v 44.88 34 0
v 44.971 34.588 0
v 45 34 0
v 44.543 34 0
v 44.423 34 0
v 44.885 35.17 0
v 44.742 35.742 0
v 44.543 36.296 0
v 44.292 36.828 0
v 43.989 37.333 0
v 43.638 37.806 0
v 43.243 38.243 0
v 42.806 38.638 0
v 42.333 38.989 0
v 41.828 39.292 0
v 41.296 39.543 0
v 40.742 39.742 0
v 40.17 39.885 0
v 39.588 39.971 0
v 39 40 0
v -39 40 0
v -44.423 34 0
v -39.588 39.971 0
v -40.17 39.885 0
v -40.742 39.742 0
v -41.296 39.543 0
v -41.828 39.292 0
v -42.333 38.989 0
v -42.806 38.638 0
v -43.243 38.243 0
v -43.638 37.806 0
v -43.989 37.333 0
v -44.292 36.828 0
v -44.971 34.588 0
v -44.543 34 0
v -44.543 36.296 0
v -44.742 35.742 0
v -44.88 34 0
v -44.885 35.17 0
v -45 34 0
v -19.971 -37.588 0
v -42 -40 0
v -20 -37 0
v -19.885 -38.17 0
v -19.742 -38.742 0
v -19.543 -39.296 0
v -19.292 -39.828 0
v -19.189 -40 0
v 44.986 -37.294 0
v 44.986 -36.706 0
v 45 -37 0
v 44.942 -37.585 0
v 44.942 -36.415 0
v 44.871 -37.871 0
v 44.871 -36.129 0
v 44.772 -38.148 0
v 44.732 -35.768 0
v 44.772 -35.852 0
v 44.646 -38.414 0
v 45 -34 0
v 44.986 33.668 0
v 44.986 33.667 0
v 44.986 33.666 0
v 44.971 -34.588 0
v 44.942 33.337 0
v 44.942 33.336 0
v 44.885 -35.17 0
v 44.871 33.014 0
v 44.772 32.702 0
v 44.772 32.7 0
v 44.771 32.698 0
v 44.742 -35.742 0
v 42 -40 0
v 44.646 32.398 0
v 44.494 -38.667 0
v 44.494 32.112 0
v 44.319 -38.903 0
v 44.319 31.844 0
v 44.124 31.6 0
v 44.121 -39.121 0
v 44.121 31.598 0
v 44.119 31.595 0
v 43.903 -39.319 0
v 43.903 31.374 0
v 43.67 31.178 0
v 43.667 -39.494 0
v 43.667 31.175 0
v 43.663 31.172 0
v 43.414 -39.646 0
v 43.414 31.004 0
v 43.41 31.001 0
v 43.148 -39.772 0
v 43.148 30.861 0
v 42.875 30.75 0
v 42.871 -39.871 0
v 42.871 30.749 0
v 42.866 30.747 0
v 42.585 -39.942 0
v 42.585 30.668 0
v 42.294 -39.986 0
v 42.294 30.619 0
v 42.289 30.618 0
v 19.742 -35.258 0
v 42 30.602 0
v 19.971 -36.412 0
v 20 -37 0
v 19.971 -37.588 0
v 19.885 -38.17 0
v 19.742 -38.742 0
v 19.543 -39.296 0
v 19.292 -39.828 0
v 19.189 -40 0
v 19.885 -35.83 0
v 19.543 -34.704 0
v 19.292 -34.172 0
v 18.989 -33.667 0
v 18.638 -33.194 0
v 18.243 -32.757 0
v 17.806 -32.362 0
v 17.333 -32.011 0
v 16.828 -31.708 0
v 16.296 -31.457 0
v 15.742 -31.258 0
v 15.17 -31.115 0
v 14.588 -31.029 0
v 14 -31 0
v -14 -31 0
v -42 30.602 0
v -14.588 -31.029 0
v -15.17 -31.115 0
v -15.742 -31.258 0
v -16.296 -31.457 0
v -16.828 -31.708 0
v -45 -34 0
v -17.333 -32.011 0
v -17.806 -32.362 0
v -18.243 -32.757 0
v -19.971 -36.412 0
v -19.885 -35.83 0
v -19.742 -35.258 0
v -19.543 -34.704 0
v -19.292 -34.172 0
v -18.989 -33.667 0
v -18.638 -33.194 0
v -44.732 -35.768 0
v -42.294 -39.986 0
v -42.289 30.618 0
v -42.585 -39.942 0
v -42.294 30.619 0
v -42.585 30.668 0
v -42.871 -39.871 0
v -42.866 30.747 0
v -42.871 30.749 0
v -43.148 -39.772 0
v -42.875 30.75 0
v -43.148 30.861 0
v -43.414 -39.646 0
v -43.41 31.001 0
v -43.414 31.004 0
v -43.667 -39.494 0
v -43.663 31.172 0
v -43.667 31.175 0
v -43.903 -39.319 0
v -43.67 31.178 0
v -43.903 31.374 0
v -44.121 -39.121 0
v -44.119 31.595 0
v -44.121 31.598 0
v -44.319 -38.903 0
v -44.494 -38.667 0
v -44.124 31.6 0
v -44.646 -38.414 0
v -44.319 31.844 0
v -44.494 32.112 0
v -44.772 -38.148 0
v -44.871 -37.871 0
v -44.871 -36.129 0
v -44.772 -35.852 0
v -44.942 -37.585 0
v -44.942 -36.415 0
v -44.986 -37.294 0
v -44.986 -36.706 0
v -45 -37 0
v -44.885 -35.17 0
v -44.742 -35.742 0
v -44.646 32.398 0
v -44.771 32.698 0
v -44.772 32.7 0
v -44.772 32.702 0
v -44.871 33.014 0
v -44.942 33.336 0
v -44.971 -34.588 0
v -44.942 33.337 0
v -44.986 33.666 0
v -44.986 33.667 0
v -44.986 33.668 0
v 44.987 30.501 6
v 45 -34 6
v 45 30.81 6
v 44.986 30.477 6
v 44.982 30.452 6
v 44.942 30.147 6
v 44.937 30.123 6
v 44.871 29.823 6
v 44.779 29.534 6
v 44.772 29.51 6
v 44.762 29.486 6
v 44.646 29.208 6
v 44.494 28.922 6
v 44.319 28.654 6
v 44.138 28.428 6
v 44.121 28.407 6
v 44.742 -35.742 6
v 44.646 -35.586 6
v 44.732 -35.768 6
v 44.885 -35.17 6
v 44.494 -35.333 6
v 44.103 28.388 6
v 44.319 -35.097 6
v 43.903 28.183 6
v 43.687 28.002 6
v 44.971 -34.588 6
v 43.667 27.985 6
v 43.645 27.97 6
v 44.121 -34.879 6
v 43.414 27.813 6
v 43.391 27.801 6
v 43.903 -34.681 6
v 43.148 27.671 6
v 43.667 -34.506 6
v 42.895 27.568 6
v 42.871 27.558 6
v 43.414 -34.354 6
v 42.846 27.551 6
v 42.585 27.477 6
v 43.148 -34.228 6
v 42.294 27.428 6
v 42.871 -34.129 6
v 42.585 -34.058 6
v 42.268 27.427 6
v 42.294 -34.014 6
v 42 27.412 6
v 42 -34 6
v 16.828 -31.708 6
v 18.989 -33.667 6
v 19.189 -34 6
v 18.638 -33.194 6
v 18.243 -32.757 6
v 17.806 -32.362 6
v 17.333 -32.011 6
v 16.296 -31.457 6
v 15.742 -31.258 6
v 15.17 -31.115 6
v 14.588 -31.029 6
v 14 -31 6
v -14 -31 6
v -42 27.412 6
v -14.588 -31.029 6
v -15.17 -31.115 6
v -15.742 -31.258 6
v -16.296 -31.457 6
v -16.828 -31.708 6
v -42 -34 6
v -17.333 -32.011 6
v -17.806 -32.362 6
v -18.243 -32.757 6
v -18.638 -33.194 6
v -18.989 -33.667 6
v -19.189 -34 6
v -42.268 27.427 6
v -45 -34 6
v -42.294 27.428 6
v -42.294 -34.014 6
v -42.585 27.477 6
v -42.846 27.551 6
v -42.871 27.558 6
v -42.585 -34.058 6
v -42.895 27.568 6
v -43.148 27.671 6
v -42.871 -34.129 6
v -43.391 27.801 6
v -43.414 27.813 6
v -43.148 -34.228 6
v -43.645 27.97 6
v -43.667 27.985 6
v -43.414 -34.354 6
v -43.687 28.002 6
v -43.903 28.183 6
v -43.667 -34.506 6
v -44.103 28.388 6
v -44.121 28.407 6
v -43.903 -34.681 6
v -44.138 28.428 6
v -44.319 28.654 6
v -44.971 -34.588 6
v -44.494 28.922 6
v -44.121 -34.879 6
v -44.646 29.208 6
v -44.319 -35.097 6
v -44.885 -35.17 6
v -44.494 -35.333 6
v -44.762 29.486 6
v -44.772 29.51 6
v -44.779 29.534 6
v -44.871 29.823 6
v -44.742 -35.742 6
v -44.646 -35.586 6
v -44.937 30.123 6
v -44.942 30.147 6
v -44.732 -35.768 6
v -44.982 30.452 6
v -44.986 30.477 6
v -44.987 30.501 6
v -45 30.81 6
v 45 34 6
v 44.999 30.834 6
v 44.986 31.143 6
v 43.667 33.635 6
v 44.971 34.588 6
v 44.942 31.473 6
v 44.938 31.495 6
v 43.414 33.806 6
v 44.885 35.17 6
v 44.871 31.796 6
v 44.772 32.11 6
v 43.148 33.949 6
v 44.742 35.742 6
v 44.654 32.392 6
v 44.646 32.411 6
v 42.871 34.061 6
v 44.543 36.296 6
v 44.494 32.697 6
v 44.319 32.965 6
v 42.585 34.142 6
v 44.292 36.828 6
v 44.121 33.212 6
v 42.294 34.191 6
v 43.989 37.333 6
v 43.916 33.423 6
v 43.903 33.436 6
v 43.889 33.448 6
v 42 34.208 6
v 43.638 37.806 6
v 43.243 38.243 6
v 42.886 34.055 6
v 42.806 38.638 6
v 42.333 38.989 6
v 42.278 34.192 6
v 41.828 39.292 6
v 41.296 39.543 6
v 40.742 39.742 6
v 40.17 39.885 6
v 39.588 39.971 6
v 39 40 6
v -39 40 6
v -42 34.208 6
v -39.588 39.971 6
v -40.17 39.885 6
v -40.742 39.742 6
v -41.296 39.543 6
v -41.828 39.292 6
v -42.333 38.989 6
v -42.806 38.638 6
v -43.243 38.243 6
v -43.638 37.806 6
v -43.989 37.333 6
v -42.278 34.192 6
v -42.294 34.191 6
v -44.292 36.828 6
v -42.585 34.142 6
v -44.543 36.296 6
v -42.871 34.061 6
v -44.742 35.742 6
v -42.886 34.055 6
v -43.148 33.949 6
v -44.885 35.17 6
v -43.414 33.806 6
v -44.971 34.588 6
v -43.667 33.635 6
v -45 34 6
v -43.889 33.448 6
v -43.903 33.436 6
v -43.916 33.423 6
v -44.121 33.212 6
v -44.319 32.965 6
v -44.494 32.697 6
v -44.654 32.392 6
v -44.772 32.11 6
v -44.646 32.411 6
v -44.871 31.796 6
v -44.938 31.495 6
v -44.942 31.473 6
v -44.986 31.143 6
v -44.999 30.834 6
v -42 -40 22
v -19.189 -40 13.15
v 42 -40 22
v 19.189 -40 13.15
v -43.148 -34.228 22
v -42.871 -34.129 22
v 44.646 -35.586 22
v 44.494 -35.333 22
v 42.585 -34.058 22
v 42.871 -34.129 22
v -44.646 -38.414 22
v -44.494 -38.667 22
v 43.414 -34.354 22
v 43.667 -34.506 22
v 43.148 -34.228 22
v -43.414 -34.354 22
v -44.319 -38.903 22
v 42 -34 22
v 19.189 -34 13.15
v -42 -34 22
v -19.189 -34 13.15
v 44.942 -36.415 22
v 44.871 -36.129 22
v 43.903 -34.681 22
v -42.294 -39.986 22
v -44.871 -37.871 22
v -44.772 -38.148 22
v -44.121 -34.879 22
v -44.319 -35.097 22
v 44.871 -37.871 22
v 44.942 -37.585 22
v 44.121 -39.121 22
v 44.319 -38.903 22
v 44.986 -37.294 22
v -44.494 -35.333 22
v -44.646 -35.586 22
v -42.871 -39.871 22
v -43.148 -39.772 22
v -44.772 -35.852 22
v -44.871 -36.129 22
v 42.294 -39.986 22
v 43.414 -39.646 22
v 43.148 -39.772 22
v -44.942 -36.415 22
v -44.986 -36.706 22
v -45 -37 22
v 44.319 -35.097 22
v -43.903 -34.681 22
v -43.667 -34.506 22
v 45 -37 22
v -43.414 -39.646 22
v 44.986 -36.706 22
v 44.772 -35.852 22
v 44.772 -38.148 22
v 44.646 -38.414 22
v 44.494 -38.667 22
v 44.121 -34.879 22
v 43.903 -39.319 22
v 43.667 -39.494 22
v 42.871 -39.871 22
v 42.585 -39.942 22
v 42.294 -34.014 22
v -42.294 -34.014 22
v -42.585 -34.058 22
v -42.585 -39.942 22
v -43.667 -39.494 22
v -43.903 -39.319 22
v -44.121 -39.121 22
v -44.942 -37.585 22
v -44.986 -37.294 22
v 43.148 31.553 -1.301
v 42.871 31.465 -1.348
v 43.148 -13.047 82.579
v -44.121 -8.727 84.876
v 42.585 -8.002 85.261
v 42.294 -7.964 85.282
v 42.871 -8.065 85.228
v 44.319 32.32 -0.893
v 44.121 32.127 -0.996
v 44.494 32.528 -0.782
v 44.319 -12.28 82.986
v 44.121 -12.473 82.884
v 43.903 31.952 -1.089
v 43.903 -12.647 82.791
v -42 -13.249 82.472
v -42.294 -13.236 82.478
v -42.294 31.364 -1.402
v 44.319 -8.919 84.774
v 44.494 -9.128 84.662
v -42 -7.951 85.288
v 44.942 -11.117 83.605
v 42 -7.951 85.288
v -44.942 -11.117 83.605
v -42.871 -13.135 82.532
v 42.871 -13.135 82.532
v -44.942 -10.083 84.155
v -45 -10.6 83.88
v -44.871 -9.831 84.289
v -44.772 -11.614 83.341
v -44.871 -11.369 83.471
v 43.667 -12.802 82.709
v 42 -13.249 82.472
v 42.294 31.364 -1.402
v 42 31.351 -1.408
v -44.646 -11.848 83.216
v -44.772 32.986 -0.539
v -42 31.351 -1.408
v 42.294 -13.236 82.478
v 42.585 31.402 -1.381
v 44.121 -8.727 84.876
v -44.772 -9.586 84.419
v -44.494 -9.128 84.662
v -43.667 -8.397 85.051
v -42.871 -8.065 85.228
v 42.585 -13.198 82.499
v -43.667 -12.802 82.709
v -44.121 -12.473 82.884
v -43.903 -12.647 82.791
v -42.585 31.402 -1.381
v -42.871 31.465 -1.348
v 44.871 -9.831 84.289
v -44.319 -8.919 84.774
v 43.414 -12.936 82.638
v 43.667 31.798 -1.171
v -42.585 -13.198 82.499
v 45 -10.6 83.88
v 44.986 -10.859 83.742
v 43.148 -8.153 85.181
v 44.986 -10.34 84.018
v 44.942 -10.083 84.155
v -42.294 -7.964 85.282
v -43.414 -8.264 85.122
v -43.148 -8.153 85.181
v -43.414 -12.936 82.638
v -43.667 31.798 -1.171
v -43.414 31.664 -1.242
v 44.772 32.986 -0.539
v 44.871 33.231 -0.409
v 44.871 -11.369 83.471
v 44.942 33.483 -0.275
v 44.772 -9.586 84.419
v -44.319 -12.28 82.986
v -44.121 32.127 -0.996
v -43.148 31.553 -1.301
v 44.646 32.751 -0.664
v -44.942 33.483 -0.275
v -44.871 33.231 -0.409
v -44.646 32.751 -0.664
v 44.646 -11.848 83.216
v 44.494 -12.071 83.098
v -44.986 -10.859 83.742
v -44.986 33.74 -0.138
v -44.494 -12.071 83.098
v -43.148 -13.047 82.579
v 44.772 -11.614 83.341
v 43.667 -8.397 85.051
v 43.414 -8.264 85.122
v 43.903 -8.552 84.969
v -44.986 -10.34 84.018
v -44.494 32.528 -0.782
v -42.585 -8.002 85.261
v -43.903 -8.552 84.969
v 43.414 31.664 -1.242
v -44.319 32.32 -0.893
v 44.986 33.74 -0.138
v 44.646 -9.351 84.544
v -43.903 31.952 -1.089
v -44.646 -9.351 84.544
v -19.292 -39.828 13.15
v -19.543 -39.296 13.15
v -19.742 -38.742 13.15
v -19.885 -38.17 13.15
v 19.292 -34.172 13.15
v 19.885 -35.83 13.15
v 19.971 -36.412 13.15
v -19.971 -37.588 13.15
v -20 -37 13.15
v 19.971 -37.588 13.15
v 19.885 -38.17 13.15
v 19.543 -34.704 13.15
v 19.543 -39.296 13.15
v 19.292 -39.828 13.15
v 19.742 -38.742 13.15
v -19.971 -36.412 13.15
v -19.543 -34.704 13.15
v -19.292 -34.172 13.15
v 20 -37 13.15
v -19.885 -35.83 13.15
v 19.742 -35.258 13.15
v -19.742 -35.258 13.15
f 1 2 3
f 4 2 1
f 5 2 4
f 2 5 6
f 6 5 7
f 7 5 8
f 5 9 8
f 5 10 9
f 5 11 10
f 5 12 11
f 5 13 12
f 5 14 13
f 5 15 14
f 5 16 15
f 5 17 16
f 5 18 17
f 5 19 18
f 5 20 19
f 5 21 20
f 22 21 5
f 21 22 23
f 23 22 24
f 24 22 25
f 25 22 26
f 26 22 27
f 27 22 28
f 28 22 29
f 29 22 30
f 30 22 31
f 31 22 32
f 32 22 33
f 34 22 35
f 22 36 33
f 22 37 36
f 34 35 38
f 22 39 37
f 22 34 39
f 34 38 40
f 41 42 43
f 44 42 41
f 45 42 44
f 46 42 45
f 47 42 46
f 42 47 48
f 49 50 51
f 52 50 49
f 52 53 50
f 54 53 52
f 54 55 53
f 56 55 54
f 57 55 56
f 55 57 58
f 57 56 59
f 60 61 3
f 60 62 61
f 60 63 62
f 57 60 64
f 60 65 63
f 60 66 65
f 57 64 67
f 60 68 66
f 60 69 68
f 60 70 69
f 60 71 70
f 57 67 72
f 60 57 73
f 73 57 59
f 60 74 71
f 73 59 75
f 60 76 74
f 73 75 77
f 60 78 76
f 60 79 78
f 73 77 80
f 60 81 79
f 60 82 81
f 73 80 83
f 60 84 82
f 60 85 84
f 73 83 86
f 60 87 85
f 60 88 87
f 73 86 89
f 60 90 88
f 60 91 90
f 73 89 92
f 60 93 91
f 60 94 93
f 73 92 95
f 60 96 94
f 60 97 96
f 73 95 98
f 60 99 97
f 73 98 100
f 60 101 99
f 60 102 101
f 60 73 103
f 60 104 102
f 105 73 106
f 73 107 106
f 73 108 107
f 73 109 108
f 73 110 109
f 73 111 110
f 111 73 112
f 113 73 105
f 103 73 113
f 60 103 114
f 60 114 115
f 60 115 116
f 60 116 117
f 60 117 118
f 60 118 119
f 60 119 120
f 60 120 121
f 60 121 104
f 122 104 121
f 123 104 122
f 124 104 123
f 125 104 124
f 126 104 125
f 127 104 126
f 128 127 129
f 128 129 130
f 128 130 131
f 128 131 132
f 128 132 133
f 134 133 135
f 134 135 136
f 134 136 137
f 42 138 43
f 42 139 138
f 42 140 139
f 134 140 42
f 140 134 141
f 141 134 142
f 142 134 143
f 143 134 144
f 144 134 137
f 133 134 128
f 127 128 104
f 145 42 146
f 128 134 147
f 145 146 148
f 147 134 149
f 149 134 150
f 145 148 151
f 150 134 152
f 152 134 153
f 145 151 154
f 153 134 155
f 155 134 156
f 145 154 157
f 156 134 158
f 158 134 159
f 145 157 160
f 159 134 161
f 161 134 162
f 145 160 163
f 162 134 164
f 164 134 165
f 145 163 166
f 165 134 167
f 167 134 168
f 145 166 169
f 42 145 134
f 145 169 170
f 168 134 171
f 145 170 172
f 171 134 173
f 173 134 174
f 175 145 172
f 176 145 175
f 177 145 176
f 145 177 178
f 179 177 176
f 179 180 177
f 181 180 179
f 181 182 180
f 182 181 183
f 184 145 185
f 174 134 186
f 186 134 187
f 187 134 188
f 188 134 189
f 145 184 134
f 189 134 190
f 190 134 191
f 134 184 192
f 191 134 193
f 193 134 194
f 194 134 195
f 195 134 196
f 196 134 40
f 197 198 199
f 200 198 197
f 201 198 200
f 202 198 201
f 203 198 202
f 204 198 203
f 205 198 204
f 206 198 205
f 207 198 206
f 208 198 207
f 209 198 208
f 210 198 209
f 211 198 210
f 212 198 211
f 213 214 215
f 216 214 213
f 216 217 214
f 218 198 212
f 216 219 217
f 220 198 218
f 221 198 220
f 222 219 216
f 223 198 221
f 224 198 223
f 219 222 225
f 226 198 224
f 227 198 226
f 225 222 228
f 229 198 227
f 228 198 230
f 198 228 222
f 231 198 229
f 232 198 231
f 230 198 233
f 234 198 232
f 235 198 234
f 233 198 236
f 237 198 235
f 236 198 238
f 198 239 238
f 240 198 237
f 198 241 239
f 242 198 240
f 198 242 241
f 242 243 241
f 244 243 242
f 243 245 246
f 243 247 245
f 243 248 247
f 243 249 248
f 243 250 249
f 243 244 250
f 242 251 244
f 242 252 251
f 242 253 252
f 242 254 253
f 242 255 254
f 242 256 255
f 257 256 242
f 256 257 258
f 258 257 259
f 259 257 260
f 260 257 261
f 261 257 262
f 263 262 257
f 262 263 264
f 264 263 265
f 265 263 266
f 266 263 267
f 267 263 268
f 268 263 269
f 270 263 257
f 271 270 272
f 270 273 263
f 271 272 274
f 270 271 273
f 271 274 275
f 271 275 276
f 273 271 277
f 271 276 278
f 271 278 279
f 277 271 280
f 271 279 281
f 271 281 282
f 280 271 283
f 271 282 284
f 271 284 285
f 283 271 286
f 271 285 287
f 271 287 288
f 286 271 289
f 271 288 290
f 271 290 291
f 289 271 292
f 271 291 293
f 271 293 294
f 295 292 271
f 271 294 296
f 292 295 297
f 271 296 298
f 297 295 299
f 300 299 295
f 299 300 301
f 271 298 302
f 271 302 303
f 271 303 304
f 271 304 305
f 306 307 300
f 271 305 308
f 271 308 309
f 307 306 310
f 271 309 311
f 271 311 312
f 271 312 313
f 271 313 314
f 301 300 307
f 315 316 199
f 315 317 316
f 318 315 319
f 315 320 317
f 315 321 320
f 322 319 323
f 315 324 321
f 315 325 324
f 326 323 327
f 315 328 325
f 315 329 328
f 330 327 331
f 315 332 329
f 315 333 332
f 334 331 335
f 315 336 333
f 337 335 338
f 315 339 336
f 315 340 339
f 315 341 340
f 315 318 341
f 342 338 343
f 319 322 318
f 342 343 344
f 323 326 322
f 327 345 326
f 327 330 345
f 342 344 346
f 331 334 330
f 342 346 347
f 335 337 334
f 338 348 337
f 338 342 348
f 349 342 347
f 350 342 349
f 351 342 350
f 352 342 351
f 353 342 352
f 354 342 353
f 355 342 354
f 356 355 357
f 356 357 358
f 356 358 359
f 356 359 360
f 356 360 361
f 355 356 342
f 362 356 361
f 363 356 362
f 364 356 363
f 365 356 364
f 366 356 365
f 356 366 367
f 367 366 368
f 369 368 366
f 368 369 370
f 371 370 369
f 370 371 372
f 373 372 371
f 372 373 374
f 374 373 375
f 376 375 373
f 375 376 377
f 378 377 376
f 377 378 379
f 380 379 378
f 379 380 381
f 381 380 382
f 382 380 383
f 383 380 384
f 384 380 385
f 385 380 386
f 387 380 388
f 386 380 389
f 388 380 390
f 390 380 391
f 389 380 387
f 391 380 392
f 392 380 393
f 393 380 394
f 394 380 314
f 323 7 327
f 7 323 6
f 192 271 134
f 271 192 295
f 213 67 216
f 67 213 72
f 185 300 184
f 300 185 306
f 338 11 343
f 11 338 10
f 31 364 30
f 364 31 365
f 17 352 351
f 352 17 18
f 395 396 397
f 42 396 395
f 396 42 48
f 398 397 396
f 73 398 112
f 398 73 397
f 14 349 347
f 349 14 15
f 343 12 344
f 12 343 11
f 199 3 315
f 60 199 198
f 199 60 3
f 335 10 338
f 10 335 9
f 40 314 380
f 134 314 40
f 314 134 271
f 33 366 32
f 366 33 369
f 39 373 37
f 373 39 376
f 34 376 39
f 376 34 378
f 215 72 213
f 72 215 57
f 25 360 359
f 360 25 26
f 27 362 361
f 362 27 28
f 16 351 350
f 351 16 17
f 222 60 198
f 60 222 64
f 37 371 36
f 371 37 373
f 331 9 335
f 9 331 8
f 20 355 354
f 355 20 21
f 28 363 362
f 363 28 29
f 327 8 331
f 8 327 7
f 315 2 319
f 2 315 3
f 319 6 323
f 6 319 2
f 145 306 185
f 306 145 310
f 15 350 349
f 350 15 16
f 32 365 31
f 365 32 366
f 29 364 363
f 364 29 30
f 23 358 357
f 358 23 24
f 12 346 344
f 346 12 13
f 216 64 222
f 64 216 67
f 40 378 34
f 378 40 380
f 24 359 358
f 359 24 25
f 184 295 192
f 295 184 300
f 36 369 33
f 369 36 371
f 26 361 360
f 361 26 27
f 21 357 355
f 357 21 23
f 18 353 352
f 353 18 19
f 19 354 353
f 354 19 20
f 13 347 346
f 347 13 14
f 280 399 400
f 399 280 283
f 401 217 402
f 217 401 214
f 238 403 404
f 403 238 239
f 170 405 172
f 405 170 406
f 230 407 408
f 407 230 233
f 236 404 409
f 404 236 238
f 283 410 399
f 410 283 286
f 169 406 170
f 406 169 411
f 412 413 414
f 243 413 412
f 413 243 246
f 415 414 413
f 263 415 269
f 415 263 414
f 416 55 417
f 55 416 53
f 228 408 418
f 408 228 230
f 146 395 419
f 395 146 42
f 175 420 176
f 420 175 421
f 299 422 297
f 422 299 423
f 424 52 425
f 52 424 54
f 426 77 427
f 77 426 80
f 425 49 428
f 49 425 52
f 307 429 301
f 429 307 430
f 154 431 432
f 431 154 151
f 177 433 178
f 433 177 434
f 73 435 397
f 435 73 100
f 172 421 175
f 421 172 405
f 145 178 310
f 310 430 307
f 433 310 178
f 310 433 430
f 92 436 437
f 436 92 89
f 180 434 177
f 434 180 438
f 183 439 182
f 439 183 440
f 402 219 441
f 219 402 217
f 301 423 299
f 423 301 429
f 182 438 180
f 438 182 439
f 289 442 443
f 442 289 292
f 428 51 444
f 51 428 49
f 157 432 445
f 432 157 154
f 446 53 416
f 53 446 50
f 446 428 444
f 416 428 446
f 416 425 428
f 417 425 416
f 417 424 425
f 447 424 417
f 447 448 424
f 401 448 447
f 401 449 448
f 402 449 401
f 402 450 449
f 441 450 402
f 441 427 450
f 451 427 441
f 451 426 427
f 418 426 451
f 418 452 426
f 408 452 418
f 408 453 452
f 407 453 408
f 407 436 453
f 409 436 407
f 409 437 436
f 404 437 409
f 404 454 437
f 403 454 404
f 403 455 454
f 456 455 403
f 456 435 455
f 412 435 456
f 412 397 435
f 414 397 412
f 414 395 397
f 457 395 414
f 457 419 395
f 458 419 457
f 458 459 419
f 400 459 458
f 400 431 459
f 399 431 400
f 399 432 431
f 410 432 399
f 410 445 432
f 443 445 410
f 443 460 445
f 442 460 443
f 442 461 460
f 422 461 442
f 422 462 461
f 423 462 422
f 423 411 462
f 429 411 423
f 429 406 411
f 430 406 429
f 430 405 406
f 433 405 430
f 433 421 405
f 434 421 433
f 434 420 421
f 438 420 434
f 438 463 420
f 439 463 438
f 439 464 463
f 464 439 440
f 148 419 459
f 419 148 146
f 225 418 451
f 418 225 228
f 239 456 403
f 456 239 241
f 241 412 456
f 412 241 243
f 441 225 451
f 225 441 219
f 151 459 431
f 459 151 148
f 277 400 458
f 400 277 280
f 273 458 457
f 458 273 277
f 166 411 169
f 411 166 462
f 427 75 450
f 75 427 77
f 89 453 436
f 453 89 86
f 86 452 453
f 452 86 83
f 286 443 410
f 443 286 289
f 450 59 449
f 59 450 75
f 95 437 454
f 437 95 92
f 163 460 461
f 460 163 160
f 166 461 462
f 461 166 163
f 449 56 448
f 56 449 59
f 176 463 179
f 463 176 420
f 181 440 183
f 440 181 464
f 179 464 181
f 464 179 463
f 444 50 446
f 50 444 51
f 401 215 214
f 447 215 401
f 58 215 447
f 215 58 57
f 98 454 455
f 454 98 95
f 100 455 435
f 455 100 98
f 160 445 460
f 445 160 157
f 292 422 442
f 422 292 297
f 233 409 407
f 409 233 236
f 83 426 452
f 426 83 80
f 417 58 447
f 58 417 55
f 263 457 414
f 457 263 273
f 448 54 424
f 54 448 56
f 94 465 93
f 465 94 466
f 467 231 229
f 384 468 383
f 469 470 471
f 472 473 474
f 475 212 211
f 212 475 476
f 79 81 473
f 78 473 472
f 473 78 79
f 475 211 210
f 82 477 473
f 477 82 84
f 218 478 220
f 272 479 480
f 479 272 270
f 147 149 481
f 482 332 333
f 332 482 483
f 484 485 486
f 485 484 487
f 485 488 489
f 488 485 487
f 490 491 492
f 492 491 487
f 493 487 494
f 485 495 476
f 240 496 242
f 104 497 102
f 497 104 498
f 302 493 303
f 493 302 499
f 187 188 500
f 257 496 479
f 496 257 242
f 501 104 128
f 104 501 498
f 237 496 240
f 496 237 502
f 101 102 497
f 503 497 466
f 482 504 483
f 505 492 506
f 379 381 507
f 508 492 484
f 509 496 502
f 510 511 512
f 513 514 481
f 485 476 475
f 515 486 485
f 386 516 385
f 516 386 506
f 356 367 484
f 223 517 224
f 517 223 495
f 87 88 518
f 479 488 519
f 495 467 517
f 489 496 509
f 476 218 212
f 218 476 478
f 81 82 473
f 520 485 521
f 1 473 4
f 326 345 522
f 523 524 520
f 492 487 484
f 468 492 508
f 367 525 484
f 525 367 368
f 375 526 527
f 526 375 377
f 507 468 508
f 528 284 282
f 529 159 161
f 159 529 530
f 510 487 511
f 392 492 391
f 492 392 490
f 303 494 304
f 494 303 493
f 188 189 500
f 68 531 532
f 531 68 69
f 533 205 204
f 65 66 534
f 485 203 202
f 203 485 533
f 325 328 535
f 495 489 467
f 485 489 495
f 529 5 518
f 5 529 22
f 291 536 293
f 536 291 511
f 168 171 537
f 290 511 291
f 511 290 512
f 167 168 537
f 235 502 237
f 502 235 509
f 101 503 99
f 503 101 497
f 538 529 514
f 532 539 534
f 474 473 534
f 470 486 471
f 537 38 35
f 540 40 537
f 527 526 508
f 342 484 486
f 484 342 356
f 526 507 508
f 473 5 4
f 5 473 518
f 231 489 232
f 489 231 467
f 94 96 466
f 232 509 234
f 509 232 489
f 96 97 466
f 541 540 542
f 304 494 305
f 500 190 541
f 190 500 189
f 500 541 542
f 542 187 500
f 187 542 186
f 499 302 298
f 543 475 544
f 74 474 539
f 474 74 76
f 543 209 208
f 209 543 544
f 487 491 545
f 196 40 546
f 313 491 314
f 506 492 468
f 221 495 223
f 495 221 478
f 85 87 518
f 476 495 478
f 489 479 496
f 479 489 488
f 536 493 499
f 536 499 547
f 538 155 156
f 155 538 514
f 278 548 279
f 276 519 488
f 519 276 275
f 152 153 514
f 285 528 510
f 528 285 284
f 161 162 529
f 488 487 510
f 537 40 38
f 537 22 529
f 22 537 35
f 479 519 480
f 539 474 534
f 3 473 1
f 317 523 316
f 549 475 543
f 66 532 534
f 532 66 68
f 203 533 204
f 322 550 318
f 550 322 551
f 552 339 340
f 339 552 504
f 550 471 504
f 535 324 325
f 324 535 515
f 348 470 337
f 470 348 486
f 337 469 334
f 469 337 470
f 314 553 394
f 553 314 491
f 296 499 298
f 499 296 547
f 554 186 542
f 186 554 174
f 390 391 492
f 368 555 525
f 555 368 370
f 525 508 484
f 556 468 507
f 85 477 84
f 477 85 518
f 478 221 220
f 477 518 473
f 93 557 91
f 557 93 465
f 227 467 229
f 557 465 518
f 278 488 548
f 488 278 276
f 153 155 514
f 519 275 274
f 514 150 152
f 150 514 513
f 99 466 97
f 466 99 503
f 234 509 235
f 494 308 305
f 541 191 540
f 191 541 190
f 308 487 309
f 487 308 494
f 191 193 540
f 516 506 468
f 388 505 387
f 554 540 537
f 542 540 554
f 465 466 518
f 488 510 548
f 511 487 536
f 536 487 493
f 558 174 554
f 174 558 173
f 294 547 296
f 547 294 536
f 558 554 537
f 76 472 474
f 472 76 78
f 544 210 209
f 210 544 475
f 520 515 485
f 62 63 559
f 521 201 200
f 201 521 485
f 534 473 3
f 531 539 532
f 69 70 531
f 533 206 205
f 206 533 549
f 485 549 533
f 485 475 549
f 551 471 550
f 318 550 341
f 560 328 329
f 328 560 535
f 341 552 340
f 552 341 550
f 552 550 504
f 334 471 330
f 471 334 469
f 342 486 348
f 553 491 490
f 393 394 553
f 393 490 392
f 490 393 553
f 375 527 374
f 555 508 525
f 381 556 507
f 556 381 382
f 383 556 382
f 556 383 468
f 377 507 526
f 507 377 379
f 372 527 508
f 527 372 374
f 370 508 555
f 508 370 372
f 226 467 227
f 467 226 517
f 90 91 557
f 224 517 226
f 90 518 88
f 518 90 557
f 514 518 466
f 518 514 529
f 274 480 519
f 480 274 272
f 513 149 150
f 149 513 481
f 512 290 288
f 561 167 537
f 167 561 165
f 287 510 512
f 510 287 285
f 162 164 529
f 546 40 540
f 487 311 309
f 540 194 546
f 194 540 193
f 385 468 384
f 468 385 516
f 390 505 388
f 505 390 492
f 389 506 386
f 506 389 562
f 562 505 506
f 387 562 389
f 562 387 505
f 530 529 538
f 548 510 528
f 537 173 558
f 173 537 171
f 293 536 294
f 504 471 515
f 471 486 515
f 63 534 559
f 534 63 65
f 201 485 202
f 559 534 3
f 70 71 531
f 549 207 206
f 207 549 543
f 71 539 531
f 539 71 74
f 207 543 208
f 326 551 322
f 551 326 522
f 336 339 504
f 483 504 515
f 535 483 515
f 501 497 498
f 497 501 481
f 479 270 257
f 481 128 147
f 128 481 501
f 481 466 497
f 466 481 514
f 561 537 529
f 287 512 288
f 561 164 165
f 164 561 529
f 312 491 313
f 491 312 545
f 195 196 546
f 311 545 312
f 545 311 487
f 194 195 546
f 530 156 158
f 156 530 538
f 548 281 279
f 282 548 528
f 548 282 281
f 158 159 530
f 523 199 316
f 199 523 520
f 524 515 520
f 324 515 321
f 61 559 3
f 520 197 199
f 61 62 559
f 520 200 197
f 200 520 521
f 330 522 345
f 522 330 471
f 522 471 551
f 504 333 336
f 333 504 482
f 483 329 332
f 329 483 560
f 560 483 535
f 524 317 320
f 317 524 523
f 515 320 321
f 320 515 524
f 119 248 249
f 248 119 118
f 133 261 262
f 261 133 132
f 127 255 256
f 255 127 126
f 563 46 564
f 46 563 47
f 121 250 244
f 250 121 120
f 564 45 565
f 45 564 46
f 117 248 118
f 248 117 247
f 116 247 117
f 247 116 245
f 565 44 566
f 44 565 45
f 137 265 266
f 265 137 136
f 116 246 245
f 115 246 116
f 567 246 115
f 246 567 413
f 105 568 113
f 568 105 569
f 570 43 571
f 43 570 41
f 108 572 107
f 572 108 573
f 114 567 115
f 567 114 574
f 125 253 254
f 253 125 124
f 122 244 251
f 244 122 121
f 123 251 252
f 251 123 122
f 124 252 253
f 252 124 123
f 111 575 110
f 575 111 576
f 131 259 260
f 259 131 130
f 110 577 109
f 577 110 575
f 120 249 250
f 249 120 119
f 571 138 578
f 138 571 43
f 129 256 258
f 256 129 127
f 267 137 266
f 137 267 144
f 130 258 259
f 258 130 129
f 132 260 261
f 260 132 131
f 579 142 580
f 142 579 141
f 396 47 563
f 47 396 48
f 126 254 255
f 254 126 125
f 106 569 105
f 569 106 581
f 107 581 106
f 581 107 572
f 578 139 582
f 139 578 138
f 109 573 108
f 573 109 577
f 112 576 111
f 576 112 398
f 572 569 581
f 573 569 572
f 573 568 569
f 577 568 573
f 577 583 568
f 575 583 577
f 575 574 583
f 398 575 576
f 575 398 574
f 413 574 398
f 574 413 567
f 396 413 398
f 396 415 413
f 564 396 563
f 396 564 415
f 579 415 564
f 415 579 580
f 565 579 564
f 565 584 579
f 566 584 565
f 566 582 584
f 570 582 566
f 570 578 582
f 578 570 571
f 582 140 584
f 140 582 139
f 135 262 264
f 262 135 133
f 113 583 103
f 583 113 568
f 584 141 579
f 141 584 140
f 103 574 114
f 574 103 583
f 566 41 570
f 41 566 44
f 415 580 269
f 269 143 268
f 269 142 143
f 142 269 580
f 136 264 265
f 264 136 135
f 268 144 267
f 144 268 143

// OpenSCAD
// ============================================================
// Y7 — Phone / tablet stand (tuned for PETG HS)
// Sturdy angled cradle, cable pass-through, no supports.
// Units: millimetres.
// ============================================================

base_w   = 90;    // width
base_d   = 80;    // depth (front-back)
thick    = 6;     // material thickness of the plates
angle    = 62;    // recline angle of the back rest (deg from bed)
back_h   = 95;    // back rest height along its slope
lip_h    = 22;    // front lip that holds the phone
slot_w   = 40;    // cable slot width in the lip
$fn      = 64;
eps      = 0.05;

module rounded_plate(w, d, t, r = 6) {
    hull() for (x = [r-w/2, w/2-r], y = [r-d/2, d/2-r])
        translate([x, y, 0]) cylinder(h = t, r = r);
}

module phone_stand() {
    difference() {
        union() {
            // base
            translate([0, 0, 0]) rounded_plate(base_w, base_d, thick);
            // front lip (holds phone bottom edge)
            translate([0, -base_d/2 + thick/2, 0])
                rounded_plate(base_w, thick, lip_h, r = thick/2);
            // angled back rest
            translate([0, base_d/2 - thick, 0])
                rotate([90 - angle, 0, 0])
                    rounded_plate(base_w, thick, back_h, r = thick/2);
            // side gussets for rigidity
            for (s = [-1, 1])
                translate([s*(base_w/2 - thick/2), 0, 0])
                    rotate([0, 0, 0])
                        linear_extrude(height = thick)
                            polygon([[-2,-base_d/2+8],[2,-base_d/2+8],[2, base_d/2-4]]);
        }
        // cable pass-through slot in the front lip
        translate([0, -base_d/2 + thick/2, -eps])
            hull() {
                translate([-slot_w/2 + 6, 0, 0]) cylinder(h = lip_h*0.6, r = 6);
                translate([ slot_w/2 - 6, 0, 0]) cylinder(h = lip_h*0.6, r = 6);
            }
    }
}

phone_stand();
